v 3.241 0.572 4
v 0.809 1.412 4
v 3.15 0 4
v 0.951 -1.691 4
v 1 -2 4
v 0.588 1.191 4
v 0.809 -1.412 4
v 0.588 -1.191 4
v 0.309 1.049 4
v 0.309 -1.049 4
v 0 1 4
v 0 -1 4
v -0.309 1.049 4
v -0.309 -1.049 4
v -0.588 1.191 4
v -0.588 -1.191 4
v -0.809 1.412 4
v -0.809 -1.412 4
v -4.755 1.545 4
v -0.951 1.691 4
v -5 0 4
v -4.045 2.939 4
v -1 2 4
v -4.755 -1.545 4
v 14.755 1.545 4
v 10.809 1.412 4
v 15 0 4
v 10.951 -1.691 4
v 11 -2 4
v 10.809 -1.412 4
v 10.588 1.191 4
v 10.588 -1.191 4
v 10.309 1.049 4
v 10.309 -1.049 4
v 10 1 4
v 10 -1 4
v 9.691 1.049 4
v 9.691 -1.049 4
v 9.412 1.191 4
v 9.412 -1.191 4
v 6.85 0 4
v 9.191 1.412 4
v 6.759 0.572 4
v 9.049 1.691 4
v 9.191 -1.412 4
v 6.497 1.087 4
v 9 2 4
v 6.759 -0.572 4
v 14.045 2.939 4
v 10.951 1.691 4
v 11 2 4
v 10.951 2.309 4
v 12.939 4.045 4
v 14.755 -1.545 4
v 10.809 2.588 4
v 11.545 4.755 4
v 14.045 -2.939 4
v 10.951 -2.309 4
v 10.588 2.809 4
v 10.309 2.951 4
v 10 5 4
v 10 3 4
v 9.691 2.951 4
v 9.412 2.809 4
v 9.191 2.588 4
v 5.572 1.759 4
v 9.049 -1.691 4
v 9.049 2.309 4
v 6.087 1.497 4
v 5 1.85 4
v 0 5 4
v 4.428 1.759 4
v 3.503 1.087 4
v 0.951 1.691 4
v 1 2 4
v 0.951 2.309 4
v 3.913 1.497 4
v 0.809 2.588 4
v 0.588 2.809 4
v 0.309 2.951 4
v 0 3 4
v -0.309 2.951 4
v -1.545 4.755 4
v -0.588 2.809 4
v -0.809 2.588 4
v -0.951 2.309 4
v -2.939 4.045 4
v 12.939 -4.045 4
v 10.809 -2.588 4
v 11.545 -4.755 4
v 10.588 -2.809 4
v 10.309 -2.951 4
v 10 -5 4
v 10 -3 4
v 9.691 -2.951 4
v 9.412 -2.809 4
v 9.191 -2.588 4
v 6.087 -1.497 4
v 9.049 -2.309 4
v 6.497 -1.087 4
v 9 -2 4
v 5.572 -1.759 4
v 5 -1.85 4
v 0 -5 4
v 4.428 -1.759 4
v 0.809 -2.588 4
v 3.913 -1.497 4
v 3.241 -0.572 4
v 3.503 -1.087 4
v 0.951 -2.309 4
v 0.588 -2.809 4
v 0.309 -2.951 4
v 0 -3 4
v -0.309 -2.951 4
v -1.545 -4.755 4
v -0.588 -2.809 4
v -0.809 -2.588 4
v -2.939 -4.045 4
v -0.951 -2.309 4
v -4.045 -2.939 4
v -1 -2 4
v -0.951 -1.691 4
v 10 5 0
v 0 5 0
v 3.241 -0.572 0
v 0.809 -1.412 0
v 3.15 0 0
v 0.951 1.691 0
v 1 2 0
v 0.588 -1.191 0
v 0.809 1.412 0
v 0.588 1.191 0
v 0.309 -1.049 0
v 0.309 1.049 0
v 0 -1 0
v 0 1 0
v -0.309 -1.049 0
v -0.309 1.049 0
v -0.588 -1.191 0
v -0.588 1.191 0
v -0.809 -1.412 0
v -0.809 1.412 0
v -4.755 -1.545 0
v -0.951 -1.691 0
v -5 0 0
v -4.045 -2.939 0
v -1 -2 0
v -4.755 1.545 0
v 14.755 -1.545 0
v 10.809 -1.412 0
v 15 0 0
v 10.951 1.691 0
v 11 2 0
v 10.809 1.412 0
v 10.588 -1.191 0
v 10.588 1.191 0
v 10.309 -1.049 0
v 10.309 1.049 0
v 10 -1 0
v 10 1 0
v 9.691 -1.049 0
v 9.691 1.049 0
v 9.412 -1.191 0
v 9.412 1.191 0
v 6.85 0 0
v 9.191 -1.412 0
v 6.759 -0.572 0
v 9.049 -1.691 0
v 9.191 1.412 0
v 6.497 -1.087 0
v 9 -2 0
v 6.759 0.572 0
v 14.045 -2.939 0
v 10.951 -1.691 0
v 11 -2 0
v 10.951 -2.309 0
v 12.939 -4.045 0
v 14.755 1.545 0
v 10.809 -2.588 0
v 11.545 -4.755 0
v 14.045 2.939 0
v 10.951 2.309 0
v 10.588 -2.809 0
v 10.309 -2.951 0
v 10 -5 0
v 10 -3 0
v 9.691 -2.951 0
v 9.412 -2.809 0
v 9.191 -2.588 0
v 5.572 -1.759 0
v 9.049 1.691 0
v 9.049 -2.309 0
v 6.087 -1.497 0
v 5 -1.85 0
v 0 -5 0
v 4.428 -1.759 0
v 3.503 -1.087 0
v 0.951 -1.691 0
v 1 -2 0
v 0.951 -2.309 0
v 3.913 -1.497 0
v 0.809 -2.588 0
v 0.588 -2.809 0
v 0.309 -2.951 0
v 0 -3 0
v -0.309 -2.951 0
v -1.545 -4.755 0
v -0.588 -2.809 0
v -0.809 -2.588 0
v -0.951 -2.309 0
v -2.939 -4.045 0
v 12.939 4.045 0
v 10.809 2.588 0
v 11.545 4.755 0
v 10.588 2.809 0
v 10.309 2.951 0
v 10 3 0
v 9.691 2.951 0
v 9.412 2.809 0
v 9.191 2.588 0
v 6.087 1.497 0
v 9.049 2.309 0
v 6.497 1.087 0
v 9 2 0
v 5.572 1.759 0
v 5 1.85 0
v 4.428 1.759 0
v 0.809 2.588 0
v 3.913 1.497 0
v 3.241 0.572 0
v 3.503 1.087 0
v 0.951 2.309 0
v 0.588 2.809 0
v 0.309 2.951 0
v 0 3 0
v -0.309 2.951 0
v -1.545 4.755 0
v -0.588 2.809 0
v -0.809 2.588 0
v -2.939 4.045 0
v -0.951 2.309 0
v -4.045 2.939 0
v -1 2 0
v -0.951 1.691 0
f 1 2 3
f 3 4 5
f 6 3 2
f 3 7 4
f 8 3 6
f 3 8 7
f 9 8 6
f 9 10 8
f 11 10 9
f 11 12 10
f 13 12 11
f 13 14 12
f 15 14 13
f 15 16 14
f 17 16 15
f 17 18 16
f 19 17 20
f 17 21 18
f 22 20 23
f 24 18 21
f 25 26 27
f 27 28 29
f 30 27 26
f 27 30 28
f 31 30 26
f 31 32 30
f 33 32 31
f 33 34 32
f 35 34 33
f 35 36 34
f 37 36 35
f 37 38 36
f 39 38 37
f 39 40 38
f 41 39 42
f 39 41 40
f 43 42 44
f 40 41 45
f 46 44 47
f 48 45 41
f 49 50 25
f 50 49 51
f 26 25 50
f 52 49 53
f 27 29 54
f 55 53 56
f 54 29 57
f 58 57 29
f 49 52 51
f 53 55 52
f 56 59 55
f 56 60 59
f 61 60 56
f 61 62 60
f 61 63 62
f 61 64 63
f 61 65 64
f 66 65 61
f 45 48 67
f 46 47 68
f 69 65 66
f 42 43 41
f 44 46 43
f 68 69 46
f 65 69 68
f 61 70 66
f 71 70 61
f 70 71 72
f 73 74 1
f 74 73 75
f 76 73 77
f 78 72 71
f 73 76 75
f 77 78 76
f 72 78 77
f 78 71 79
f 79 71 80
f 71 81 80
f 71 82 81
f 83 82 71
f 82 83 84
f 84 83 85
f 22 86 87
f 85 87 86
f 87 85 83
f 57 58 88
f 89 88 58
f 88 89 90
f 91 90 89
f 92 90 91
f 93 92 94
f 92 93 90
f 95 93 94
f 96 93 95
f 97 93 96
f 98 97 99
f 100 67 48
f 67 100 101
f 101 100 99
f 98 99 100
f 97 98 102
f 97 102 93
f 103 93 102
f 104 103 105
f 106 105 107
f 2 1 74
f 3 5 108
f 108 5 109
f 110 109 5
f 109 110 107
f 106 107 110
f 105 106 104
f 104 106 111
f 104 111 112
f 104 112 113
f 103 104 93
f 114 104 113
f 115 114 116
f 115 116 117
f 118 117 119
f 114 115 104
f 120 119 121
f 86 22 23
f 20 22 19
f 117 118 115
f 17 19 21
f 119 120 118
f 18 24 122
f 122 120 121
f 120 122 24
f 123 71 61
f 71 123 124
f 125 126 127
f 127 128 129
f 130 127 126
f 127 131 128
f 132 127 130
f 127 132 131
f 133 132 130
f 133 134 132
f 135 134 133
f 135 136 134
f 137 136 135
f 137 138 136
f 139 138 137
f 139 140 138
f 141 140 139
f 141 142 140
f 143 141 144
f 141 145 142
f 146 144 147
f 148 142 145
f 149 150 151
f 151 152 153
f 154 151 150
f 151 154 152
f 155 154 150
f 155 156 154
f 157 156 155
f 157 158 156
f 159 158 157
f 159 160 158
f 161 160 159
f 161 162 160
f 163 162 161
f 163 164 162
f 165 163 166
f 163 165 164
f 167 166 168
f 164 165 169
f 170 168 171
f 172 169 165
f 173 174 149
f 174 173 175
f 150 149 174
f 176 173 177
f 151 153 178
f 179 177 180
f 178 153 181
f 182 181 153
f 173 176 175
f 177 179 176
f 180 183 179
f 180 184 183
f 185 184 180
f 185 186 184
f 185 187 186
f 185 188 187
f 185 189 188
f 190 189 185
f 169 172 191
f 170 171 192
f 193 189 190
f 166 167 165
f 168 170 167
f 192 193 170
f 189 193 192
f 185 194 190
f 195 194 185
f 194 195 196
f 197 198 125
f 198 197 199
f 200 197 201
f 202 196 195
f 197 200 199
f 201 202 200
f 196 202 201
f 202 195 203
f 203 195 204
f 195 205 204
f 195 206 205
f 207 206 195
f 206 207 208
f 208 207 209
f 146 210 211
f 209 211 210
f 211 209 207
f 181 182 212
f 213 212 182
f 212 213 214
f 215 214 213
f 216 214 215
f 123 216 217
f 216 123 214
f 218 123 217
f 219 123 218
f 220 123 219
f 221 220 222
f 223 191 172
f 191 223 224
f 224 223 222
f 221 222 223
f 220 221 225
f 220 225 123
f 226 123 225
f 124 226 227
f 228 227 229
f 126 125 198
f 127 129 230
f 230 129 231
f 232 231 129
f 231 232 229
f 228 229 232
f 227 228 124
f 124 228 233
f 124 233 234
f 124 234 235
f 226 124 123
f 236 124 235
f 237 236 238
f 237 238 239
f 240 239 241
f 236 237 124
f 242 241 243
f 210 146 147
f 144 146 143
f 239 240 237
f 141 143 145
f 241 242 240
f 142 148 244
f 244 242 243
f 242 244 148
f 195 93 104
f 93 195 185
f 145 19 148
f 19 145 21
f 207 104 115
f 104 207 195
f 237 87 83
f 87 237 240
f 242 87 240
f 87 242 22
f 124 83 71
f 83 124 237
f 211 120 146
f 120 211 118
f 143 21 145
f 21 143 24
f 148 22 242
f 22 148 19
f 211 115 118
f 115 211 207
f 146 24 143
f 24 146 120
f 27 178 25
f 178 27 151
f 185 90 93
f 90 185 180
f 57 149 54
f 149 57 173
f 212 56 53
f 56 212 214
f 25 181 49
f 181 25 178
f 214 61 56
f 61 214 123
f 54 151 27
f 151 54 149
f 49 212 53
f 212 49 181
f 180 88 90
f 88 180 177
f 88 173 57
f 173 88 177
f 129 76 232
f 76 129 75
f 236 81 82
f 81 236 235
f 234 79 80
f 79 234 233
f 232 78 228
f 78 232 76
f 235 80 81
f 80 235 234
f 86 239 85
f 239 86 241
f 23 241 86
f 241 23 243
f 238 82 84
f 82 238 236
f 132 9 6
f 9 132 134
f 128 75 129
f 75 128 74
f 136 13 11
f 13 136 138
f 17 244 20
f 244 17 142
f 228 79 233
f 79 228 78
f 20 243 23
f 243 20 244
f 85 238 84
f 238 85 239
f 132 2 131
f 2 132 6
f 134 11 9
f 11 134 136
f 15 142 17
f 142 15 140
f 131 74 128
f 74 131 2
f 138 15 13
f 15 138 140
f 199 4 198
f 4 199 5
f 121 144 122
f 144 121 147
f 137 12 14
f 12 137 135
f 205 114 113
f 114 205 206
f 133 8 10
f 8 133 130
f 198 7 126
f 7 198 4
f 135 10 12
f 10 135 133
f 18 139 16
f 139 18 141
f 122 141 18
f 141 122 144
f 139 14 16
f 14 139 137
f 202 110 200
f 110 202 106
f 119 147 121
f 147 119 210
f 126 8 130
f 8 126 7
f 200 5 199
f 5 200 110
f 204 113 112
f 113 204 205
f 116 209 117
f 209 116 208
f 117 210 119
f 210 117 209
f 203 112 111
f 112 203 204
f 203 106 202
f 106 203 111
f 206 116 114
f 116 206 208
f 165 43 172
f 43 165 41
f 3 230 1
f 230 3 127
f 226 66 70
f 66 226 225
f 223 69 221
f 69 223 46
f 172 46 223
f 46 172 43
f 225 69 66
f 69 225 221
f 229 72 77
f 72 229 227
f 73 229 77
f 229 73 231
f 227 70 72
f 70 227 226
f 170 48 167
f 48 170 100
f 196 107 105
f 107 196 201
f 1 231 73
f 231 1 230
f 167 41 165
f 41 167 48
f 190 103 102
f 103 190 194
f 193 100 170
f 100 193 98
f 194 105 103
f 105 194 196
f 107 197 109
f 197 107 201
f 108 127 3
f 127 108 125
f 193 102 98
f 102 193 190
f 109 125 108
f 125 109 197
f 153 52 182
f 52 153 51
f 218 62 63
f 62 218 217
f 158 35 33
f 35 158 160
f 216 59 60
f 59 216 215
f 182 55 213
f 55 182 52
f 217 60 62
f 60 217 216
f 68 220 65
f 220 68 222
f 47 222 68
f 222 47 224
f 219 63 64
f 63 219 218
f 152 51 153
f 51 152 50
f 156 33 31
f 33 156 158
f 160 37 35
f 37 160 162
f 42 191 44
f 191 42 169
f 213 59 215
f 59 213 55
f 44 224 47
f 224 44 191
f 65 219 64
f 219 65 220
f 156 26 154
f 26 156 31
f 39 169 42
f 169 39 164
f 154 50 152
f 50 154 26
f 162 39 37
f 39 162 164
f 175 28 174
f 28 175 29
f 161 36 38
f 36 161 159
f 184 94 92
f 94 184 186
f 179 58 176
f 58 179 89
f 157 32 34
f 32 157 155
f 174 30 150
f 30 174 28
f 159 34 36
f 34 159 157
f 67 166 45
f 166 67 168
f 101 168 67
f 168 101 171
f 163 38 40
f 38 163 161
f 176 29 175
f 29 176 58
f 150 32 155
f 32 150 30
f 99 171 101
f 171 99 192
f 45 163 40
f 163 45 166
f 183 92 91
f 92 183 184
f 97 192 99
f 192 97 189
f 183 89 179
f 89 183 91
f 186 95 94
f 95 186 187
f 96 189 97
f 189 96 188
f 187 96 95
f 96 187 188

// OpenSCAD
$fn=20;

isx = 1.5;       // Inital Spacing X


/* Settings */
stfs_tolerance = 1; // Tolerance (screw head is large)
stfs_between_space = 25; // Spacing between
hang_holes = 2;   // Diameter of holes for the wall hanging string
hang_hole_interspace = 4; // Spacing between hanging holes
hang_to_stfs_space = 5; // Spacing between the hanging and stfs holes

/* STFS Dimentions */
stfs_holes = 2.7;   // Diameter of stovetop firestop retaining screws
stfs_b_dia = 85.23; // Diameter of stovetop firestop body
stfs_b_h = 55;      // Approx height of stovetop firestop body

/* Calc */
stfs_hole_dia = stfs_holes+stfs_tolerance; // Alignment Pin Diamenter
hang_pin_dia = hang_holes; // Probe Pin Diameter

/* Hole Position */
ah1 = 0;
stfs_1_x = ah1 + hang_to_stfs_space;

ah2 = stfs_1_x + hang_to_stfs_space;

/* base */
boxx = ah1 + ah2;
boxy = 10;
boxh = 4;

/* 3D Model */
difference() {
union() {
    translate([0  , -boxy/2  , 0])
        cube([boxx,boxy,boxh]);
    translate([0  , 0  , 0])
        cylinder(r=boxy/2, h=boxh);
    translate([boxx  , 0  , 0])
        cylinder(r=boxy/2, h=boxh);
}

/* Align Hole 1 */
#translate([ah1 ,  hang_hole_interspace/2 , -1])
    cylinder(r=hang_holes/2, h=boxh+2);
#translate([ah1 , -hang_hole_interspace/2 , -1])
    cylinder(r=hang_holes/2, h=boxh+2);

/* STFS 1 */
#translate([stfs_1_x , 0  , -1])
    cylinder(r=stfs_hole_dia/2, h=boxh+2);
%translate([stfs_1_x , 0  , -stfs_b_h])
    cylinder(r=stfs_b_dia/2, h=stfs_b_h);

/* Align Hole 2 */
#translate([ah2 ,  hang_hole_interspace/2 , -1])
    cylinder(r=hang_holes/2, h=boxh+2);
#translate([ah2 , -hang_hole_interspace/2 , -1])
    cylinder(r=hang_holes/2, h=boxh+2);
}
